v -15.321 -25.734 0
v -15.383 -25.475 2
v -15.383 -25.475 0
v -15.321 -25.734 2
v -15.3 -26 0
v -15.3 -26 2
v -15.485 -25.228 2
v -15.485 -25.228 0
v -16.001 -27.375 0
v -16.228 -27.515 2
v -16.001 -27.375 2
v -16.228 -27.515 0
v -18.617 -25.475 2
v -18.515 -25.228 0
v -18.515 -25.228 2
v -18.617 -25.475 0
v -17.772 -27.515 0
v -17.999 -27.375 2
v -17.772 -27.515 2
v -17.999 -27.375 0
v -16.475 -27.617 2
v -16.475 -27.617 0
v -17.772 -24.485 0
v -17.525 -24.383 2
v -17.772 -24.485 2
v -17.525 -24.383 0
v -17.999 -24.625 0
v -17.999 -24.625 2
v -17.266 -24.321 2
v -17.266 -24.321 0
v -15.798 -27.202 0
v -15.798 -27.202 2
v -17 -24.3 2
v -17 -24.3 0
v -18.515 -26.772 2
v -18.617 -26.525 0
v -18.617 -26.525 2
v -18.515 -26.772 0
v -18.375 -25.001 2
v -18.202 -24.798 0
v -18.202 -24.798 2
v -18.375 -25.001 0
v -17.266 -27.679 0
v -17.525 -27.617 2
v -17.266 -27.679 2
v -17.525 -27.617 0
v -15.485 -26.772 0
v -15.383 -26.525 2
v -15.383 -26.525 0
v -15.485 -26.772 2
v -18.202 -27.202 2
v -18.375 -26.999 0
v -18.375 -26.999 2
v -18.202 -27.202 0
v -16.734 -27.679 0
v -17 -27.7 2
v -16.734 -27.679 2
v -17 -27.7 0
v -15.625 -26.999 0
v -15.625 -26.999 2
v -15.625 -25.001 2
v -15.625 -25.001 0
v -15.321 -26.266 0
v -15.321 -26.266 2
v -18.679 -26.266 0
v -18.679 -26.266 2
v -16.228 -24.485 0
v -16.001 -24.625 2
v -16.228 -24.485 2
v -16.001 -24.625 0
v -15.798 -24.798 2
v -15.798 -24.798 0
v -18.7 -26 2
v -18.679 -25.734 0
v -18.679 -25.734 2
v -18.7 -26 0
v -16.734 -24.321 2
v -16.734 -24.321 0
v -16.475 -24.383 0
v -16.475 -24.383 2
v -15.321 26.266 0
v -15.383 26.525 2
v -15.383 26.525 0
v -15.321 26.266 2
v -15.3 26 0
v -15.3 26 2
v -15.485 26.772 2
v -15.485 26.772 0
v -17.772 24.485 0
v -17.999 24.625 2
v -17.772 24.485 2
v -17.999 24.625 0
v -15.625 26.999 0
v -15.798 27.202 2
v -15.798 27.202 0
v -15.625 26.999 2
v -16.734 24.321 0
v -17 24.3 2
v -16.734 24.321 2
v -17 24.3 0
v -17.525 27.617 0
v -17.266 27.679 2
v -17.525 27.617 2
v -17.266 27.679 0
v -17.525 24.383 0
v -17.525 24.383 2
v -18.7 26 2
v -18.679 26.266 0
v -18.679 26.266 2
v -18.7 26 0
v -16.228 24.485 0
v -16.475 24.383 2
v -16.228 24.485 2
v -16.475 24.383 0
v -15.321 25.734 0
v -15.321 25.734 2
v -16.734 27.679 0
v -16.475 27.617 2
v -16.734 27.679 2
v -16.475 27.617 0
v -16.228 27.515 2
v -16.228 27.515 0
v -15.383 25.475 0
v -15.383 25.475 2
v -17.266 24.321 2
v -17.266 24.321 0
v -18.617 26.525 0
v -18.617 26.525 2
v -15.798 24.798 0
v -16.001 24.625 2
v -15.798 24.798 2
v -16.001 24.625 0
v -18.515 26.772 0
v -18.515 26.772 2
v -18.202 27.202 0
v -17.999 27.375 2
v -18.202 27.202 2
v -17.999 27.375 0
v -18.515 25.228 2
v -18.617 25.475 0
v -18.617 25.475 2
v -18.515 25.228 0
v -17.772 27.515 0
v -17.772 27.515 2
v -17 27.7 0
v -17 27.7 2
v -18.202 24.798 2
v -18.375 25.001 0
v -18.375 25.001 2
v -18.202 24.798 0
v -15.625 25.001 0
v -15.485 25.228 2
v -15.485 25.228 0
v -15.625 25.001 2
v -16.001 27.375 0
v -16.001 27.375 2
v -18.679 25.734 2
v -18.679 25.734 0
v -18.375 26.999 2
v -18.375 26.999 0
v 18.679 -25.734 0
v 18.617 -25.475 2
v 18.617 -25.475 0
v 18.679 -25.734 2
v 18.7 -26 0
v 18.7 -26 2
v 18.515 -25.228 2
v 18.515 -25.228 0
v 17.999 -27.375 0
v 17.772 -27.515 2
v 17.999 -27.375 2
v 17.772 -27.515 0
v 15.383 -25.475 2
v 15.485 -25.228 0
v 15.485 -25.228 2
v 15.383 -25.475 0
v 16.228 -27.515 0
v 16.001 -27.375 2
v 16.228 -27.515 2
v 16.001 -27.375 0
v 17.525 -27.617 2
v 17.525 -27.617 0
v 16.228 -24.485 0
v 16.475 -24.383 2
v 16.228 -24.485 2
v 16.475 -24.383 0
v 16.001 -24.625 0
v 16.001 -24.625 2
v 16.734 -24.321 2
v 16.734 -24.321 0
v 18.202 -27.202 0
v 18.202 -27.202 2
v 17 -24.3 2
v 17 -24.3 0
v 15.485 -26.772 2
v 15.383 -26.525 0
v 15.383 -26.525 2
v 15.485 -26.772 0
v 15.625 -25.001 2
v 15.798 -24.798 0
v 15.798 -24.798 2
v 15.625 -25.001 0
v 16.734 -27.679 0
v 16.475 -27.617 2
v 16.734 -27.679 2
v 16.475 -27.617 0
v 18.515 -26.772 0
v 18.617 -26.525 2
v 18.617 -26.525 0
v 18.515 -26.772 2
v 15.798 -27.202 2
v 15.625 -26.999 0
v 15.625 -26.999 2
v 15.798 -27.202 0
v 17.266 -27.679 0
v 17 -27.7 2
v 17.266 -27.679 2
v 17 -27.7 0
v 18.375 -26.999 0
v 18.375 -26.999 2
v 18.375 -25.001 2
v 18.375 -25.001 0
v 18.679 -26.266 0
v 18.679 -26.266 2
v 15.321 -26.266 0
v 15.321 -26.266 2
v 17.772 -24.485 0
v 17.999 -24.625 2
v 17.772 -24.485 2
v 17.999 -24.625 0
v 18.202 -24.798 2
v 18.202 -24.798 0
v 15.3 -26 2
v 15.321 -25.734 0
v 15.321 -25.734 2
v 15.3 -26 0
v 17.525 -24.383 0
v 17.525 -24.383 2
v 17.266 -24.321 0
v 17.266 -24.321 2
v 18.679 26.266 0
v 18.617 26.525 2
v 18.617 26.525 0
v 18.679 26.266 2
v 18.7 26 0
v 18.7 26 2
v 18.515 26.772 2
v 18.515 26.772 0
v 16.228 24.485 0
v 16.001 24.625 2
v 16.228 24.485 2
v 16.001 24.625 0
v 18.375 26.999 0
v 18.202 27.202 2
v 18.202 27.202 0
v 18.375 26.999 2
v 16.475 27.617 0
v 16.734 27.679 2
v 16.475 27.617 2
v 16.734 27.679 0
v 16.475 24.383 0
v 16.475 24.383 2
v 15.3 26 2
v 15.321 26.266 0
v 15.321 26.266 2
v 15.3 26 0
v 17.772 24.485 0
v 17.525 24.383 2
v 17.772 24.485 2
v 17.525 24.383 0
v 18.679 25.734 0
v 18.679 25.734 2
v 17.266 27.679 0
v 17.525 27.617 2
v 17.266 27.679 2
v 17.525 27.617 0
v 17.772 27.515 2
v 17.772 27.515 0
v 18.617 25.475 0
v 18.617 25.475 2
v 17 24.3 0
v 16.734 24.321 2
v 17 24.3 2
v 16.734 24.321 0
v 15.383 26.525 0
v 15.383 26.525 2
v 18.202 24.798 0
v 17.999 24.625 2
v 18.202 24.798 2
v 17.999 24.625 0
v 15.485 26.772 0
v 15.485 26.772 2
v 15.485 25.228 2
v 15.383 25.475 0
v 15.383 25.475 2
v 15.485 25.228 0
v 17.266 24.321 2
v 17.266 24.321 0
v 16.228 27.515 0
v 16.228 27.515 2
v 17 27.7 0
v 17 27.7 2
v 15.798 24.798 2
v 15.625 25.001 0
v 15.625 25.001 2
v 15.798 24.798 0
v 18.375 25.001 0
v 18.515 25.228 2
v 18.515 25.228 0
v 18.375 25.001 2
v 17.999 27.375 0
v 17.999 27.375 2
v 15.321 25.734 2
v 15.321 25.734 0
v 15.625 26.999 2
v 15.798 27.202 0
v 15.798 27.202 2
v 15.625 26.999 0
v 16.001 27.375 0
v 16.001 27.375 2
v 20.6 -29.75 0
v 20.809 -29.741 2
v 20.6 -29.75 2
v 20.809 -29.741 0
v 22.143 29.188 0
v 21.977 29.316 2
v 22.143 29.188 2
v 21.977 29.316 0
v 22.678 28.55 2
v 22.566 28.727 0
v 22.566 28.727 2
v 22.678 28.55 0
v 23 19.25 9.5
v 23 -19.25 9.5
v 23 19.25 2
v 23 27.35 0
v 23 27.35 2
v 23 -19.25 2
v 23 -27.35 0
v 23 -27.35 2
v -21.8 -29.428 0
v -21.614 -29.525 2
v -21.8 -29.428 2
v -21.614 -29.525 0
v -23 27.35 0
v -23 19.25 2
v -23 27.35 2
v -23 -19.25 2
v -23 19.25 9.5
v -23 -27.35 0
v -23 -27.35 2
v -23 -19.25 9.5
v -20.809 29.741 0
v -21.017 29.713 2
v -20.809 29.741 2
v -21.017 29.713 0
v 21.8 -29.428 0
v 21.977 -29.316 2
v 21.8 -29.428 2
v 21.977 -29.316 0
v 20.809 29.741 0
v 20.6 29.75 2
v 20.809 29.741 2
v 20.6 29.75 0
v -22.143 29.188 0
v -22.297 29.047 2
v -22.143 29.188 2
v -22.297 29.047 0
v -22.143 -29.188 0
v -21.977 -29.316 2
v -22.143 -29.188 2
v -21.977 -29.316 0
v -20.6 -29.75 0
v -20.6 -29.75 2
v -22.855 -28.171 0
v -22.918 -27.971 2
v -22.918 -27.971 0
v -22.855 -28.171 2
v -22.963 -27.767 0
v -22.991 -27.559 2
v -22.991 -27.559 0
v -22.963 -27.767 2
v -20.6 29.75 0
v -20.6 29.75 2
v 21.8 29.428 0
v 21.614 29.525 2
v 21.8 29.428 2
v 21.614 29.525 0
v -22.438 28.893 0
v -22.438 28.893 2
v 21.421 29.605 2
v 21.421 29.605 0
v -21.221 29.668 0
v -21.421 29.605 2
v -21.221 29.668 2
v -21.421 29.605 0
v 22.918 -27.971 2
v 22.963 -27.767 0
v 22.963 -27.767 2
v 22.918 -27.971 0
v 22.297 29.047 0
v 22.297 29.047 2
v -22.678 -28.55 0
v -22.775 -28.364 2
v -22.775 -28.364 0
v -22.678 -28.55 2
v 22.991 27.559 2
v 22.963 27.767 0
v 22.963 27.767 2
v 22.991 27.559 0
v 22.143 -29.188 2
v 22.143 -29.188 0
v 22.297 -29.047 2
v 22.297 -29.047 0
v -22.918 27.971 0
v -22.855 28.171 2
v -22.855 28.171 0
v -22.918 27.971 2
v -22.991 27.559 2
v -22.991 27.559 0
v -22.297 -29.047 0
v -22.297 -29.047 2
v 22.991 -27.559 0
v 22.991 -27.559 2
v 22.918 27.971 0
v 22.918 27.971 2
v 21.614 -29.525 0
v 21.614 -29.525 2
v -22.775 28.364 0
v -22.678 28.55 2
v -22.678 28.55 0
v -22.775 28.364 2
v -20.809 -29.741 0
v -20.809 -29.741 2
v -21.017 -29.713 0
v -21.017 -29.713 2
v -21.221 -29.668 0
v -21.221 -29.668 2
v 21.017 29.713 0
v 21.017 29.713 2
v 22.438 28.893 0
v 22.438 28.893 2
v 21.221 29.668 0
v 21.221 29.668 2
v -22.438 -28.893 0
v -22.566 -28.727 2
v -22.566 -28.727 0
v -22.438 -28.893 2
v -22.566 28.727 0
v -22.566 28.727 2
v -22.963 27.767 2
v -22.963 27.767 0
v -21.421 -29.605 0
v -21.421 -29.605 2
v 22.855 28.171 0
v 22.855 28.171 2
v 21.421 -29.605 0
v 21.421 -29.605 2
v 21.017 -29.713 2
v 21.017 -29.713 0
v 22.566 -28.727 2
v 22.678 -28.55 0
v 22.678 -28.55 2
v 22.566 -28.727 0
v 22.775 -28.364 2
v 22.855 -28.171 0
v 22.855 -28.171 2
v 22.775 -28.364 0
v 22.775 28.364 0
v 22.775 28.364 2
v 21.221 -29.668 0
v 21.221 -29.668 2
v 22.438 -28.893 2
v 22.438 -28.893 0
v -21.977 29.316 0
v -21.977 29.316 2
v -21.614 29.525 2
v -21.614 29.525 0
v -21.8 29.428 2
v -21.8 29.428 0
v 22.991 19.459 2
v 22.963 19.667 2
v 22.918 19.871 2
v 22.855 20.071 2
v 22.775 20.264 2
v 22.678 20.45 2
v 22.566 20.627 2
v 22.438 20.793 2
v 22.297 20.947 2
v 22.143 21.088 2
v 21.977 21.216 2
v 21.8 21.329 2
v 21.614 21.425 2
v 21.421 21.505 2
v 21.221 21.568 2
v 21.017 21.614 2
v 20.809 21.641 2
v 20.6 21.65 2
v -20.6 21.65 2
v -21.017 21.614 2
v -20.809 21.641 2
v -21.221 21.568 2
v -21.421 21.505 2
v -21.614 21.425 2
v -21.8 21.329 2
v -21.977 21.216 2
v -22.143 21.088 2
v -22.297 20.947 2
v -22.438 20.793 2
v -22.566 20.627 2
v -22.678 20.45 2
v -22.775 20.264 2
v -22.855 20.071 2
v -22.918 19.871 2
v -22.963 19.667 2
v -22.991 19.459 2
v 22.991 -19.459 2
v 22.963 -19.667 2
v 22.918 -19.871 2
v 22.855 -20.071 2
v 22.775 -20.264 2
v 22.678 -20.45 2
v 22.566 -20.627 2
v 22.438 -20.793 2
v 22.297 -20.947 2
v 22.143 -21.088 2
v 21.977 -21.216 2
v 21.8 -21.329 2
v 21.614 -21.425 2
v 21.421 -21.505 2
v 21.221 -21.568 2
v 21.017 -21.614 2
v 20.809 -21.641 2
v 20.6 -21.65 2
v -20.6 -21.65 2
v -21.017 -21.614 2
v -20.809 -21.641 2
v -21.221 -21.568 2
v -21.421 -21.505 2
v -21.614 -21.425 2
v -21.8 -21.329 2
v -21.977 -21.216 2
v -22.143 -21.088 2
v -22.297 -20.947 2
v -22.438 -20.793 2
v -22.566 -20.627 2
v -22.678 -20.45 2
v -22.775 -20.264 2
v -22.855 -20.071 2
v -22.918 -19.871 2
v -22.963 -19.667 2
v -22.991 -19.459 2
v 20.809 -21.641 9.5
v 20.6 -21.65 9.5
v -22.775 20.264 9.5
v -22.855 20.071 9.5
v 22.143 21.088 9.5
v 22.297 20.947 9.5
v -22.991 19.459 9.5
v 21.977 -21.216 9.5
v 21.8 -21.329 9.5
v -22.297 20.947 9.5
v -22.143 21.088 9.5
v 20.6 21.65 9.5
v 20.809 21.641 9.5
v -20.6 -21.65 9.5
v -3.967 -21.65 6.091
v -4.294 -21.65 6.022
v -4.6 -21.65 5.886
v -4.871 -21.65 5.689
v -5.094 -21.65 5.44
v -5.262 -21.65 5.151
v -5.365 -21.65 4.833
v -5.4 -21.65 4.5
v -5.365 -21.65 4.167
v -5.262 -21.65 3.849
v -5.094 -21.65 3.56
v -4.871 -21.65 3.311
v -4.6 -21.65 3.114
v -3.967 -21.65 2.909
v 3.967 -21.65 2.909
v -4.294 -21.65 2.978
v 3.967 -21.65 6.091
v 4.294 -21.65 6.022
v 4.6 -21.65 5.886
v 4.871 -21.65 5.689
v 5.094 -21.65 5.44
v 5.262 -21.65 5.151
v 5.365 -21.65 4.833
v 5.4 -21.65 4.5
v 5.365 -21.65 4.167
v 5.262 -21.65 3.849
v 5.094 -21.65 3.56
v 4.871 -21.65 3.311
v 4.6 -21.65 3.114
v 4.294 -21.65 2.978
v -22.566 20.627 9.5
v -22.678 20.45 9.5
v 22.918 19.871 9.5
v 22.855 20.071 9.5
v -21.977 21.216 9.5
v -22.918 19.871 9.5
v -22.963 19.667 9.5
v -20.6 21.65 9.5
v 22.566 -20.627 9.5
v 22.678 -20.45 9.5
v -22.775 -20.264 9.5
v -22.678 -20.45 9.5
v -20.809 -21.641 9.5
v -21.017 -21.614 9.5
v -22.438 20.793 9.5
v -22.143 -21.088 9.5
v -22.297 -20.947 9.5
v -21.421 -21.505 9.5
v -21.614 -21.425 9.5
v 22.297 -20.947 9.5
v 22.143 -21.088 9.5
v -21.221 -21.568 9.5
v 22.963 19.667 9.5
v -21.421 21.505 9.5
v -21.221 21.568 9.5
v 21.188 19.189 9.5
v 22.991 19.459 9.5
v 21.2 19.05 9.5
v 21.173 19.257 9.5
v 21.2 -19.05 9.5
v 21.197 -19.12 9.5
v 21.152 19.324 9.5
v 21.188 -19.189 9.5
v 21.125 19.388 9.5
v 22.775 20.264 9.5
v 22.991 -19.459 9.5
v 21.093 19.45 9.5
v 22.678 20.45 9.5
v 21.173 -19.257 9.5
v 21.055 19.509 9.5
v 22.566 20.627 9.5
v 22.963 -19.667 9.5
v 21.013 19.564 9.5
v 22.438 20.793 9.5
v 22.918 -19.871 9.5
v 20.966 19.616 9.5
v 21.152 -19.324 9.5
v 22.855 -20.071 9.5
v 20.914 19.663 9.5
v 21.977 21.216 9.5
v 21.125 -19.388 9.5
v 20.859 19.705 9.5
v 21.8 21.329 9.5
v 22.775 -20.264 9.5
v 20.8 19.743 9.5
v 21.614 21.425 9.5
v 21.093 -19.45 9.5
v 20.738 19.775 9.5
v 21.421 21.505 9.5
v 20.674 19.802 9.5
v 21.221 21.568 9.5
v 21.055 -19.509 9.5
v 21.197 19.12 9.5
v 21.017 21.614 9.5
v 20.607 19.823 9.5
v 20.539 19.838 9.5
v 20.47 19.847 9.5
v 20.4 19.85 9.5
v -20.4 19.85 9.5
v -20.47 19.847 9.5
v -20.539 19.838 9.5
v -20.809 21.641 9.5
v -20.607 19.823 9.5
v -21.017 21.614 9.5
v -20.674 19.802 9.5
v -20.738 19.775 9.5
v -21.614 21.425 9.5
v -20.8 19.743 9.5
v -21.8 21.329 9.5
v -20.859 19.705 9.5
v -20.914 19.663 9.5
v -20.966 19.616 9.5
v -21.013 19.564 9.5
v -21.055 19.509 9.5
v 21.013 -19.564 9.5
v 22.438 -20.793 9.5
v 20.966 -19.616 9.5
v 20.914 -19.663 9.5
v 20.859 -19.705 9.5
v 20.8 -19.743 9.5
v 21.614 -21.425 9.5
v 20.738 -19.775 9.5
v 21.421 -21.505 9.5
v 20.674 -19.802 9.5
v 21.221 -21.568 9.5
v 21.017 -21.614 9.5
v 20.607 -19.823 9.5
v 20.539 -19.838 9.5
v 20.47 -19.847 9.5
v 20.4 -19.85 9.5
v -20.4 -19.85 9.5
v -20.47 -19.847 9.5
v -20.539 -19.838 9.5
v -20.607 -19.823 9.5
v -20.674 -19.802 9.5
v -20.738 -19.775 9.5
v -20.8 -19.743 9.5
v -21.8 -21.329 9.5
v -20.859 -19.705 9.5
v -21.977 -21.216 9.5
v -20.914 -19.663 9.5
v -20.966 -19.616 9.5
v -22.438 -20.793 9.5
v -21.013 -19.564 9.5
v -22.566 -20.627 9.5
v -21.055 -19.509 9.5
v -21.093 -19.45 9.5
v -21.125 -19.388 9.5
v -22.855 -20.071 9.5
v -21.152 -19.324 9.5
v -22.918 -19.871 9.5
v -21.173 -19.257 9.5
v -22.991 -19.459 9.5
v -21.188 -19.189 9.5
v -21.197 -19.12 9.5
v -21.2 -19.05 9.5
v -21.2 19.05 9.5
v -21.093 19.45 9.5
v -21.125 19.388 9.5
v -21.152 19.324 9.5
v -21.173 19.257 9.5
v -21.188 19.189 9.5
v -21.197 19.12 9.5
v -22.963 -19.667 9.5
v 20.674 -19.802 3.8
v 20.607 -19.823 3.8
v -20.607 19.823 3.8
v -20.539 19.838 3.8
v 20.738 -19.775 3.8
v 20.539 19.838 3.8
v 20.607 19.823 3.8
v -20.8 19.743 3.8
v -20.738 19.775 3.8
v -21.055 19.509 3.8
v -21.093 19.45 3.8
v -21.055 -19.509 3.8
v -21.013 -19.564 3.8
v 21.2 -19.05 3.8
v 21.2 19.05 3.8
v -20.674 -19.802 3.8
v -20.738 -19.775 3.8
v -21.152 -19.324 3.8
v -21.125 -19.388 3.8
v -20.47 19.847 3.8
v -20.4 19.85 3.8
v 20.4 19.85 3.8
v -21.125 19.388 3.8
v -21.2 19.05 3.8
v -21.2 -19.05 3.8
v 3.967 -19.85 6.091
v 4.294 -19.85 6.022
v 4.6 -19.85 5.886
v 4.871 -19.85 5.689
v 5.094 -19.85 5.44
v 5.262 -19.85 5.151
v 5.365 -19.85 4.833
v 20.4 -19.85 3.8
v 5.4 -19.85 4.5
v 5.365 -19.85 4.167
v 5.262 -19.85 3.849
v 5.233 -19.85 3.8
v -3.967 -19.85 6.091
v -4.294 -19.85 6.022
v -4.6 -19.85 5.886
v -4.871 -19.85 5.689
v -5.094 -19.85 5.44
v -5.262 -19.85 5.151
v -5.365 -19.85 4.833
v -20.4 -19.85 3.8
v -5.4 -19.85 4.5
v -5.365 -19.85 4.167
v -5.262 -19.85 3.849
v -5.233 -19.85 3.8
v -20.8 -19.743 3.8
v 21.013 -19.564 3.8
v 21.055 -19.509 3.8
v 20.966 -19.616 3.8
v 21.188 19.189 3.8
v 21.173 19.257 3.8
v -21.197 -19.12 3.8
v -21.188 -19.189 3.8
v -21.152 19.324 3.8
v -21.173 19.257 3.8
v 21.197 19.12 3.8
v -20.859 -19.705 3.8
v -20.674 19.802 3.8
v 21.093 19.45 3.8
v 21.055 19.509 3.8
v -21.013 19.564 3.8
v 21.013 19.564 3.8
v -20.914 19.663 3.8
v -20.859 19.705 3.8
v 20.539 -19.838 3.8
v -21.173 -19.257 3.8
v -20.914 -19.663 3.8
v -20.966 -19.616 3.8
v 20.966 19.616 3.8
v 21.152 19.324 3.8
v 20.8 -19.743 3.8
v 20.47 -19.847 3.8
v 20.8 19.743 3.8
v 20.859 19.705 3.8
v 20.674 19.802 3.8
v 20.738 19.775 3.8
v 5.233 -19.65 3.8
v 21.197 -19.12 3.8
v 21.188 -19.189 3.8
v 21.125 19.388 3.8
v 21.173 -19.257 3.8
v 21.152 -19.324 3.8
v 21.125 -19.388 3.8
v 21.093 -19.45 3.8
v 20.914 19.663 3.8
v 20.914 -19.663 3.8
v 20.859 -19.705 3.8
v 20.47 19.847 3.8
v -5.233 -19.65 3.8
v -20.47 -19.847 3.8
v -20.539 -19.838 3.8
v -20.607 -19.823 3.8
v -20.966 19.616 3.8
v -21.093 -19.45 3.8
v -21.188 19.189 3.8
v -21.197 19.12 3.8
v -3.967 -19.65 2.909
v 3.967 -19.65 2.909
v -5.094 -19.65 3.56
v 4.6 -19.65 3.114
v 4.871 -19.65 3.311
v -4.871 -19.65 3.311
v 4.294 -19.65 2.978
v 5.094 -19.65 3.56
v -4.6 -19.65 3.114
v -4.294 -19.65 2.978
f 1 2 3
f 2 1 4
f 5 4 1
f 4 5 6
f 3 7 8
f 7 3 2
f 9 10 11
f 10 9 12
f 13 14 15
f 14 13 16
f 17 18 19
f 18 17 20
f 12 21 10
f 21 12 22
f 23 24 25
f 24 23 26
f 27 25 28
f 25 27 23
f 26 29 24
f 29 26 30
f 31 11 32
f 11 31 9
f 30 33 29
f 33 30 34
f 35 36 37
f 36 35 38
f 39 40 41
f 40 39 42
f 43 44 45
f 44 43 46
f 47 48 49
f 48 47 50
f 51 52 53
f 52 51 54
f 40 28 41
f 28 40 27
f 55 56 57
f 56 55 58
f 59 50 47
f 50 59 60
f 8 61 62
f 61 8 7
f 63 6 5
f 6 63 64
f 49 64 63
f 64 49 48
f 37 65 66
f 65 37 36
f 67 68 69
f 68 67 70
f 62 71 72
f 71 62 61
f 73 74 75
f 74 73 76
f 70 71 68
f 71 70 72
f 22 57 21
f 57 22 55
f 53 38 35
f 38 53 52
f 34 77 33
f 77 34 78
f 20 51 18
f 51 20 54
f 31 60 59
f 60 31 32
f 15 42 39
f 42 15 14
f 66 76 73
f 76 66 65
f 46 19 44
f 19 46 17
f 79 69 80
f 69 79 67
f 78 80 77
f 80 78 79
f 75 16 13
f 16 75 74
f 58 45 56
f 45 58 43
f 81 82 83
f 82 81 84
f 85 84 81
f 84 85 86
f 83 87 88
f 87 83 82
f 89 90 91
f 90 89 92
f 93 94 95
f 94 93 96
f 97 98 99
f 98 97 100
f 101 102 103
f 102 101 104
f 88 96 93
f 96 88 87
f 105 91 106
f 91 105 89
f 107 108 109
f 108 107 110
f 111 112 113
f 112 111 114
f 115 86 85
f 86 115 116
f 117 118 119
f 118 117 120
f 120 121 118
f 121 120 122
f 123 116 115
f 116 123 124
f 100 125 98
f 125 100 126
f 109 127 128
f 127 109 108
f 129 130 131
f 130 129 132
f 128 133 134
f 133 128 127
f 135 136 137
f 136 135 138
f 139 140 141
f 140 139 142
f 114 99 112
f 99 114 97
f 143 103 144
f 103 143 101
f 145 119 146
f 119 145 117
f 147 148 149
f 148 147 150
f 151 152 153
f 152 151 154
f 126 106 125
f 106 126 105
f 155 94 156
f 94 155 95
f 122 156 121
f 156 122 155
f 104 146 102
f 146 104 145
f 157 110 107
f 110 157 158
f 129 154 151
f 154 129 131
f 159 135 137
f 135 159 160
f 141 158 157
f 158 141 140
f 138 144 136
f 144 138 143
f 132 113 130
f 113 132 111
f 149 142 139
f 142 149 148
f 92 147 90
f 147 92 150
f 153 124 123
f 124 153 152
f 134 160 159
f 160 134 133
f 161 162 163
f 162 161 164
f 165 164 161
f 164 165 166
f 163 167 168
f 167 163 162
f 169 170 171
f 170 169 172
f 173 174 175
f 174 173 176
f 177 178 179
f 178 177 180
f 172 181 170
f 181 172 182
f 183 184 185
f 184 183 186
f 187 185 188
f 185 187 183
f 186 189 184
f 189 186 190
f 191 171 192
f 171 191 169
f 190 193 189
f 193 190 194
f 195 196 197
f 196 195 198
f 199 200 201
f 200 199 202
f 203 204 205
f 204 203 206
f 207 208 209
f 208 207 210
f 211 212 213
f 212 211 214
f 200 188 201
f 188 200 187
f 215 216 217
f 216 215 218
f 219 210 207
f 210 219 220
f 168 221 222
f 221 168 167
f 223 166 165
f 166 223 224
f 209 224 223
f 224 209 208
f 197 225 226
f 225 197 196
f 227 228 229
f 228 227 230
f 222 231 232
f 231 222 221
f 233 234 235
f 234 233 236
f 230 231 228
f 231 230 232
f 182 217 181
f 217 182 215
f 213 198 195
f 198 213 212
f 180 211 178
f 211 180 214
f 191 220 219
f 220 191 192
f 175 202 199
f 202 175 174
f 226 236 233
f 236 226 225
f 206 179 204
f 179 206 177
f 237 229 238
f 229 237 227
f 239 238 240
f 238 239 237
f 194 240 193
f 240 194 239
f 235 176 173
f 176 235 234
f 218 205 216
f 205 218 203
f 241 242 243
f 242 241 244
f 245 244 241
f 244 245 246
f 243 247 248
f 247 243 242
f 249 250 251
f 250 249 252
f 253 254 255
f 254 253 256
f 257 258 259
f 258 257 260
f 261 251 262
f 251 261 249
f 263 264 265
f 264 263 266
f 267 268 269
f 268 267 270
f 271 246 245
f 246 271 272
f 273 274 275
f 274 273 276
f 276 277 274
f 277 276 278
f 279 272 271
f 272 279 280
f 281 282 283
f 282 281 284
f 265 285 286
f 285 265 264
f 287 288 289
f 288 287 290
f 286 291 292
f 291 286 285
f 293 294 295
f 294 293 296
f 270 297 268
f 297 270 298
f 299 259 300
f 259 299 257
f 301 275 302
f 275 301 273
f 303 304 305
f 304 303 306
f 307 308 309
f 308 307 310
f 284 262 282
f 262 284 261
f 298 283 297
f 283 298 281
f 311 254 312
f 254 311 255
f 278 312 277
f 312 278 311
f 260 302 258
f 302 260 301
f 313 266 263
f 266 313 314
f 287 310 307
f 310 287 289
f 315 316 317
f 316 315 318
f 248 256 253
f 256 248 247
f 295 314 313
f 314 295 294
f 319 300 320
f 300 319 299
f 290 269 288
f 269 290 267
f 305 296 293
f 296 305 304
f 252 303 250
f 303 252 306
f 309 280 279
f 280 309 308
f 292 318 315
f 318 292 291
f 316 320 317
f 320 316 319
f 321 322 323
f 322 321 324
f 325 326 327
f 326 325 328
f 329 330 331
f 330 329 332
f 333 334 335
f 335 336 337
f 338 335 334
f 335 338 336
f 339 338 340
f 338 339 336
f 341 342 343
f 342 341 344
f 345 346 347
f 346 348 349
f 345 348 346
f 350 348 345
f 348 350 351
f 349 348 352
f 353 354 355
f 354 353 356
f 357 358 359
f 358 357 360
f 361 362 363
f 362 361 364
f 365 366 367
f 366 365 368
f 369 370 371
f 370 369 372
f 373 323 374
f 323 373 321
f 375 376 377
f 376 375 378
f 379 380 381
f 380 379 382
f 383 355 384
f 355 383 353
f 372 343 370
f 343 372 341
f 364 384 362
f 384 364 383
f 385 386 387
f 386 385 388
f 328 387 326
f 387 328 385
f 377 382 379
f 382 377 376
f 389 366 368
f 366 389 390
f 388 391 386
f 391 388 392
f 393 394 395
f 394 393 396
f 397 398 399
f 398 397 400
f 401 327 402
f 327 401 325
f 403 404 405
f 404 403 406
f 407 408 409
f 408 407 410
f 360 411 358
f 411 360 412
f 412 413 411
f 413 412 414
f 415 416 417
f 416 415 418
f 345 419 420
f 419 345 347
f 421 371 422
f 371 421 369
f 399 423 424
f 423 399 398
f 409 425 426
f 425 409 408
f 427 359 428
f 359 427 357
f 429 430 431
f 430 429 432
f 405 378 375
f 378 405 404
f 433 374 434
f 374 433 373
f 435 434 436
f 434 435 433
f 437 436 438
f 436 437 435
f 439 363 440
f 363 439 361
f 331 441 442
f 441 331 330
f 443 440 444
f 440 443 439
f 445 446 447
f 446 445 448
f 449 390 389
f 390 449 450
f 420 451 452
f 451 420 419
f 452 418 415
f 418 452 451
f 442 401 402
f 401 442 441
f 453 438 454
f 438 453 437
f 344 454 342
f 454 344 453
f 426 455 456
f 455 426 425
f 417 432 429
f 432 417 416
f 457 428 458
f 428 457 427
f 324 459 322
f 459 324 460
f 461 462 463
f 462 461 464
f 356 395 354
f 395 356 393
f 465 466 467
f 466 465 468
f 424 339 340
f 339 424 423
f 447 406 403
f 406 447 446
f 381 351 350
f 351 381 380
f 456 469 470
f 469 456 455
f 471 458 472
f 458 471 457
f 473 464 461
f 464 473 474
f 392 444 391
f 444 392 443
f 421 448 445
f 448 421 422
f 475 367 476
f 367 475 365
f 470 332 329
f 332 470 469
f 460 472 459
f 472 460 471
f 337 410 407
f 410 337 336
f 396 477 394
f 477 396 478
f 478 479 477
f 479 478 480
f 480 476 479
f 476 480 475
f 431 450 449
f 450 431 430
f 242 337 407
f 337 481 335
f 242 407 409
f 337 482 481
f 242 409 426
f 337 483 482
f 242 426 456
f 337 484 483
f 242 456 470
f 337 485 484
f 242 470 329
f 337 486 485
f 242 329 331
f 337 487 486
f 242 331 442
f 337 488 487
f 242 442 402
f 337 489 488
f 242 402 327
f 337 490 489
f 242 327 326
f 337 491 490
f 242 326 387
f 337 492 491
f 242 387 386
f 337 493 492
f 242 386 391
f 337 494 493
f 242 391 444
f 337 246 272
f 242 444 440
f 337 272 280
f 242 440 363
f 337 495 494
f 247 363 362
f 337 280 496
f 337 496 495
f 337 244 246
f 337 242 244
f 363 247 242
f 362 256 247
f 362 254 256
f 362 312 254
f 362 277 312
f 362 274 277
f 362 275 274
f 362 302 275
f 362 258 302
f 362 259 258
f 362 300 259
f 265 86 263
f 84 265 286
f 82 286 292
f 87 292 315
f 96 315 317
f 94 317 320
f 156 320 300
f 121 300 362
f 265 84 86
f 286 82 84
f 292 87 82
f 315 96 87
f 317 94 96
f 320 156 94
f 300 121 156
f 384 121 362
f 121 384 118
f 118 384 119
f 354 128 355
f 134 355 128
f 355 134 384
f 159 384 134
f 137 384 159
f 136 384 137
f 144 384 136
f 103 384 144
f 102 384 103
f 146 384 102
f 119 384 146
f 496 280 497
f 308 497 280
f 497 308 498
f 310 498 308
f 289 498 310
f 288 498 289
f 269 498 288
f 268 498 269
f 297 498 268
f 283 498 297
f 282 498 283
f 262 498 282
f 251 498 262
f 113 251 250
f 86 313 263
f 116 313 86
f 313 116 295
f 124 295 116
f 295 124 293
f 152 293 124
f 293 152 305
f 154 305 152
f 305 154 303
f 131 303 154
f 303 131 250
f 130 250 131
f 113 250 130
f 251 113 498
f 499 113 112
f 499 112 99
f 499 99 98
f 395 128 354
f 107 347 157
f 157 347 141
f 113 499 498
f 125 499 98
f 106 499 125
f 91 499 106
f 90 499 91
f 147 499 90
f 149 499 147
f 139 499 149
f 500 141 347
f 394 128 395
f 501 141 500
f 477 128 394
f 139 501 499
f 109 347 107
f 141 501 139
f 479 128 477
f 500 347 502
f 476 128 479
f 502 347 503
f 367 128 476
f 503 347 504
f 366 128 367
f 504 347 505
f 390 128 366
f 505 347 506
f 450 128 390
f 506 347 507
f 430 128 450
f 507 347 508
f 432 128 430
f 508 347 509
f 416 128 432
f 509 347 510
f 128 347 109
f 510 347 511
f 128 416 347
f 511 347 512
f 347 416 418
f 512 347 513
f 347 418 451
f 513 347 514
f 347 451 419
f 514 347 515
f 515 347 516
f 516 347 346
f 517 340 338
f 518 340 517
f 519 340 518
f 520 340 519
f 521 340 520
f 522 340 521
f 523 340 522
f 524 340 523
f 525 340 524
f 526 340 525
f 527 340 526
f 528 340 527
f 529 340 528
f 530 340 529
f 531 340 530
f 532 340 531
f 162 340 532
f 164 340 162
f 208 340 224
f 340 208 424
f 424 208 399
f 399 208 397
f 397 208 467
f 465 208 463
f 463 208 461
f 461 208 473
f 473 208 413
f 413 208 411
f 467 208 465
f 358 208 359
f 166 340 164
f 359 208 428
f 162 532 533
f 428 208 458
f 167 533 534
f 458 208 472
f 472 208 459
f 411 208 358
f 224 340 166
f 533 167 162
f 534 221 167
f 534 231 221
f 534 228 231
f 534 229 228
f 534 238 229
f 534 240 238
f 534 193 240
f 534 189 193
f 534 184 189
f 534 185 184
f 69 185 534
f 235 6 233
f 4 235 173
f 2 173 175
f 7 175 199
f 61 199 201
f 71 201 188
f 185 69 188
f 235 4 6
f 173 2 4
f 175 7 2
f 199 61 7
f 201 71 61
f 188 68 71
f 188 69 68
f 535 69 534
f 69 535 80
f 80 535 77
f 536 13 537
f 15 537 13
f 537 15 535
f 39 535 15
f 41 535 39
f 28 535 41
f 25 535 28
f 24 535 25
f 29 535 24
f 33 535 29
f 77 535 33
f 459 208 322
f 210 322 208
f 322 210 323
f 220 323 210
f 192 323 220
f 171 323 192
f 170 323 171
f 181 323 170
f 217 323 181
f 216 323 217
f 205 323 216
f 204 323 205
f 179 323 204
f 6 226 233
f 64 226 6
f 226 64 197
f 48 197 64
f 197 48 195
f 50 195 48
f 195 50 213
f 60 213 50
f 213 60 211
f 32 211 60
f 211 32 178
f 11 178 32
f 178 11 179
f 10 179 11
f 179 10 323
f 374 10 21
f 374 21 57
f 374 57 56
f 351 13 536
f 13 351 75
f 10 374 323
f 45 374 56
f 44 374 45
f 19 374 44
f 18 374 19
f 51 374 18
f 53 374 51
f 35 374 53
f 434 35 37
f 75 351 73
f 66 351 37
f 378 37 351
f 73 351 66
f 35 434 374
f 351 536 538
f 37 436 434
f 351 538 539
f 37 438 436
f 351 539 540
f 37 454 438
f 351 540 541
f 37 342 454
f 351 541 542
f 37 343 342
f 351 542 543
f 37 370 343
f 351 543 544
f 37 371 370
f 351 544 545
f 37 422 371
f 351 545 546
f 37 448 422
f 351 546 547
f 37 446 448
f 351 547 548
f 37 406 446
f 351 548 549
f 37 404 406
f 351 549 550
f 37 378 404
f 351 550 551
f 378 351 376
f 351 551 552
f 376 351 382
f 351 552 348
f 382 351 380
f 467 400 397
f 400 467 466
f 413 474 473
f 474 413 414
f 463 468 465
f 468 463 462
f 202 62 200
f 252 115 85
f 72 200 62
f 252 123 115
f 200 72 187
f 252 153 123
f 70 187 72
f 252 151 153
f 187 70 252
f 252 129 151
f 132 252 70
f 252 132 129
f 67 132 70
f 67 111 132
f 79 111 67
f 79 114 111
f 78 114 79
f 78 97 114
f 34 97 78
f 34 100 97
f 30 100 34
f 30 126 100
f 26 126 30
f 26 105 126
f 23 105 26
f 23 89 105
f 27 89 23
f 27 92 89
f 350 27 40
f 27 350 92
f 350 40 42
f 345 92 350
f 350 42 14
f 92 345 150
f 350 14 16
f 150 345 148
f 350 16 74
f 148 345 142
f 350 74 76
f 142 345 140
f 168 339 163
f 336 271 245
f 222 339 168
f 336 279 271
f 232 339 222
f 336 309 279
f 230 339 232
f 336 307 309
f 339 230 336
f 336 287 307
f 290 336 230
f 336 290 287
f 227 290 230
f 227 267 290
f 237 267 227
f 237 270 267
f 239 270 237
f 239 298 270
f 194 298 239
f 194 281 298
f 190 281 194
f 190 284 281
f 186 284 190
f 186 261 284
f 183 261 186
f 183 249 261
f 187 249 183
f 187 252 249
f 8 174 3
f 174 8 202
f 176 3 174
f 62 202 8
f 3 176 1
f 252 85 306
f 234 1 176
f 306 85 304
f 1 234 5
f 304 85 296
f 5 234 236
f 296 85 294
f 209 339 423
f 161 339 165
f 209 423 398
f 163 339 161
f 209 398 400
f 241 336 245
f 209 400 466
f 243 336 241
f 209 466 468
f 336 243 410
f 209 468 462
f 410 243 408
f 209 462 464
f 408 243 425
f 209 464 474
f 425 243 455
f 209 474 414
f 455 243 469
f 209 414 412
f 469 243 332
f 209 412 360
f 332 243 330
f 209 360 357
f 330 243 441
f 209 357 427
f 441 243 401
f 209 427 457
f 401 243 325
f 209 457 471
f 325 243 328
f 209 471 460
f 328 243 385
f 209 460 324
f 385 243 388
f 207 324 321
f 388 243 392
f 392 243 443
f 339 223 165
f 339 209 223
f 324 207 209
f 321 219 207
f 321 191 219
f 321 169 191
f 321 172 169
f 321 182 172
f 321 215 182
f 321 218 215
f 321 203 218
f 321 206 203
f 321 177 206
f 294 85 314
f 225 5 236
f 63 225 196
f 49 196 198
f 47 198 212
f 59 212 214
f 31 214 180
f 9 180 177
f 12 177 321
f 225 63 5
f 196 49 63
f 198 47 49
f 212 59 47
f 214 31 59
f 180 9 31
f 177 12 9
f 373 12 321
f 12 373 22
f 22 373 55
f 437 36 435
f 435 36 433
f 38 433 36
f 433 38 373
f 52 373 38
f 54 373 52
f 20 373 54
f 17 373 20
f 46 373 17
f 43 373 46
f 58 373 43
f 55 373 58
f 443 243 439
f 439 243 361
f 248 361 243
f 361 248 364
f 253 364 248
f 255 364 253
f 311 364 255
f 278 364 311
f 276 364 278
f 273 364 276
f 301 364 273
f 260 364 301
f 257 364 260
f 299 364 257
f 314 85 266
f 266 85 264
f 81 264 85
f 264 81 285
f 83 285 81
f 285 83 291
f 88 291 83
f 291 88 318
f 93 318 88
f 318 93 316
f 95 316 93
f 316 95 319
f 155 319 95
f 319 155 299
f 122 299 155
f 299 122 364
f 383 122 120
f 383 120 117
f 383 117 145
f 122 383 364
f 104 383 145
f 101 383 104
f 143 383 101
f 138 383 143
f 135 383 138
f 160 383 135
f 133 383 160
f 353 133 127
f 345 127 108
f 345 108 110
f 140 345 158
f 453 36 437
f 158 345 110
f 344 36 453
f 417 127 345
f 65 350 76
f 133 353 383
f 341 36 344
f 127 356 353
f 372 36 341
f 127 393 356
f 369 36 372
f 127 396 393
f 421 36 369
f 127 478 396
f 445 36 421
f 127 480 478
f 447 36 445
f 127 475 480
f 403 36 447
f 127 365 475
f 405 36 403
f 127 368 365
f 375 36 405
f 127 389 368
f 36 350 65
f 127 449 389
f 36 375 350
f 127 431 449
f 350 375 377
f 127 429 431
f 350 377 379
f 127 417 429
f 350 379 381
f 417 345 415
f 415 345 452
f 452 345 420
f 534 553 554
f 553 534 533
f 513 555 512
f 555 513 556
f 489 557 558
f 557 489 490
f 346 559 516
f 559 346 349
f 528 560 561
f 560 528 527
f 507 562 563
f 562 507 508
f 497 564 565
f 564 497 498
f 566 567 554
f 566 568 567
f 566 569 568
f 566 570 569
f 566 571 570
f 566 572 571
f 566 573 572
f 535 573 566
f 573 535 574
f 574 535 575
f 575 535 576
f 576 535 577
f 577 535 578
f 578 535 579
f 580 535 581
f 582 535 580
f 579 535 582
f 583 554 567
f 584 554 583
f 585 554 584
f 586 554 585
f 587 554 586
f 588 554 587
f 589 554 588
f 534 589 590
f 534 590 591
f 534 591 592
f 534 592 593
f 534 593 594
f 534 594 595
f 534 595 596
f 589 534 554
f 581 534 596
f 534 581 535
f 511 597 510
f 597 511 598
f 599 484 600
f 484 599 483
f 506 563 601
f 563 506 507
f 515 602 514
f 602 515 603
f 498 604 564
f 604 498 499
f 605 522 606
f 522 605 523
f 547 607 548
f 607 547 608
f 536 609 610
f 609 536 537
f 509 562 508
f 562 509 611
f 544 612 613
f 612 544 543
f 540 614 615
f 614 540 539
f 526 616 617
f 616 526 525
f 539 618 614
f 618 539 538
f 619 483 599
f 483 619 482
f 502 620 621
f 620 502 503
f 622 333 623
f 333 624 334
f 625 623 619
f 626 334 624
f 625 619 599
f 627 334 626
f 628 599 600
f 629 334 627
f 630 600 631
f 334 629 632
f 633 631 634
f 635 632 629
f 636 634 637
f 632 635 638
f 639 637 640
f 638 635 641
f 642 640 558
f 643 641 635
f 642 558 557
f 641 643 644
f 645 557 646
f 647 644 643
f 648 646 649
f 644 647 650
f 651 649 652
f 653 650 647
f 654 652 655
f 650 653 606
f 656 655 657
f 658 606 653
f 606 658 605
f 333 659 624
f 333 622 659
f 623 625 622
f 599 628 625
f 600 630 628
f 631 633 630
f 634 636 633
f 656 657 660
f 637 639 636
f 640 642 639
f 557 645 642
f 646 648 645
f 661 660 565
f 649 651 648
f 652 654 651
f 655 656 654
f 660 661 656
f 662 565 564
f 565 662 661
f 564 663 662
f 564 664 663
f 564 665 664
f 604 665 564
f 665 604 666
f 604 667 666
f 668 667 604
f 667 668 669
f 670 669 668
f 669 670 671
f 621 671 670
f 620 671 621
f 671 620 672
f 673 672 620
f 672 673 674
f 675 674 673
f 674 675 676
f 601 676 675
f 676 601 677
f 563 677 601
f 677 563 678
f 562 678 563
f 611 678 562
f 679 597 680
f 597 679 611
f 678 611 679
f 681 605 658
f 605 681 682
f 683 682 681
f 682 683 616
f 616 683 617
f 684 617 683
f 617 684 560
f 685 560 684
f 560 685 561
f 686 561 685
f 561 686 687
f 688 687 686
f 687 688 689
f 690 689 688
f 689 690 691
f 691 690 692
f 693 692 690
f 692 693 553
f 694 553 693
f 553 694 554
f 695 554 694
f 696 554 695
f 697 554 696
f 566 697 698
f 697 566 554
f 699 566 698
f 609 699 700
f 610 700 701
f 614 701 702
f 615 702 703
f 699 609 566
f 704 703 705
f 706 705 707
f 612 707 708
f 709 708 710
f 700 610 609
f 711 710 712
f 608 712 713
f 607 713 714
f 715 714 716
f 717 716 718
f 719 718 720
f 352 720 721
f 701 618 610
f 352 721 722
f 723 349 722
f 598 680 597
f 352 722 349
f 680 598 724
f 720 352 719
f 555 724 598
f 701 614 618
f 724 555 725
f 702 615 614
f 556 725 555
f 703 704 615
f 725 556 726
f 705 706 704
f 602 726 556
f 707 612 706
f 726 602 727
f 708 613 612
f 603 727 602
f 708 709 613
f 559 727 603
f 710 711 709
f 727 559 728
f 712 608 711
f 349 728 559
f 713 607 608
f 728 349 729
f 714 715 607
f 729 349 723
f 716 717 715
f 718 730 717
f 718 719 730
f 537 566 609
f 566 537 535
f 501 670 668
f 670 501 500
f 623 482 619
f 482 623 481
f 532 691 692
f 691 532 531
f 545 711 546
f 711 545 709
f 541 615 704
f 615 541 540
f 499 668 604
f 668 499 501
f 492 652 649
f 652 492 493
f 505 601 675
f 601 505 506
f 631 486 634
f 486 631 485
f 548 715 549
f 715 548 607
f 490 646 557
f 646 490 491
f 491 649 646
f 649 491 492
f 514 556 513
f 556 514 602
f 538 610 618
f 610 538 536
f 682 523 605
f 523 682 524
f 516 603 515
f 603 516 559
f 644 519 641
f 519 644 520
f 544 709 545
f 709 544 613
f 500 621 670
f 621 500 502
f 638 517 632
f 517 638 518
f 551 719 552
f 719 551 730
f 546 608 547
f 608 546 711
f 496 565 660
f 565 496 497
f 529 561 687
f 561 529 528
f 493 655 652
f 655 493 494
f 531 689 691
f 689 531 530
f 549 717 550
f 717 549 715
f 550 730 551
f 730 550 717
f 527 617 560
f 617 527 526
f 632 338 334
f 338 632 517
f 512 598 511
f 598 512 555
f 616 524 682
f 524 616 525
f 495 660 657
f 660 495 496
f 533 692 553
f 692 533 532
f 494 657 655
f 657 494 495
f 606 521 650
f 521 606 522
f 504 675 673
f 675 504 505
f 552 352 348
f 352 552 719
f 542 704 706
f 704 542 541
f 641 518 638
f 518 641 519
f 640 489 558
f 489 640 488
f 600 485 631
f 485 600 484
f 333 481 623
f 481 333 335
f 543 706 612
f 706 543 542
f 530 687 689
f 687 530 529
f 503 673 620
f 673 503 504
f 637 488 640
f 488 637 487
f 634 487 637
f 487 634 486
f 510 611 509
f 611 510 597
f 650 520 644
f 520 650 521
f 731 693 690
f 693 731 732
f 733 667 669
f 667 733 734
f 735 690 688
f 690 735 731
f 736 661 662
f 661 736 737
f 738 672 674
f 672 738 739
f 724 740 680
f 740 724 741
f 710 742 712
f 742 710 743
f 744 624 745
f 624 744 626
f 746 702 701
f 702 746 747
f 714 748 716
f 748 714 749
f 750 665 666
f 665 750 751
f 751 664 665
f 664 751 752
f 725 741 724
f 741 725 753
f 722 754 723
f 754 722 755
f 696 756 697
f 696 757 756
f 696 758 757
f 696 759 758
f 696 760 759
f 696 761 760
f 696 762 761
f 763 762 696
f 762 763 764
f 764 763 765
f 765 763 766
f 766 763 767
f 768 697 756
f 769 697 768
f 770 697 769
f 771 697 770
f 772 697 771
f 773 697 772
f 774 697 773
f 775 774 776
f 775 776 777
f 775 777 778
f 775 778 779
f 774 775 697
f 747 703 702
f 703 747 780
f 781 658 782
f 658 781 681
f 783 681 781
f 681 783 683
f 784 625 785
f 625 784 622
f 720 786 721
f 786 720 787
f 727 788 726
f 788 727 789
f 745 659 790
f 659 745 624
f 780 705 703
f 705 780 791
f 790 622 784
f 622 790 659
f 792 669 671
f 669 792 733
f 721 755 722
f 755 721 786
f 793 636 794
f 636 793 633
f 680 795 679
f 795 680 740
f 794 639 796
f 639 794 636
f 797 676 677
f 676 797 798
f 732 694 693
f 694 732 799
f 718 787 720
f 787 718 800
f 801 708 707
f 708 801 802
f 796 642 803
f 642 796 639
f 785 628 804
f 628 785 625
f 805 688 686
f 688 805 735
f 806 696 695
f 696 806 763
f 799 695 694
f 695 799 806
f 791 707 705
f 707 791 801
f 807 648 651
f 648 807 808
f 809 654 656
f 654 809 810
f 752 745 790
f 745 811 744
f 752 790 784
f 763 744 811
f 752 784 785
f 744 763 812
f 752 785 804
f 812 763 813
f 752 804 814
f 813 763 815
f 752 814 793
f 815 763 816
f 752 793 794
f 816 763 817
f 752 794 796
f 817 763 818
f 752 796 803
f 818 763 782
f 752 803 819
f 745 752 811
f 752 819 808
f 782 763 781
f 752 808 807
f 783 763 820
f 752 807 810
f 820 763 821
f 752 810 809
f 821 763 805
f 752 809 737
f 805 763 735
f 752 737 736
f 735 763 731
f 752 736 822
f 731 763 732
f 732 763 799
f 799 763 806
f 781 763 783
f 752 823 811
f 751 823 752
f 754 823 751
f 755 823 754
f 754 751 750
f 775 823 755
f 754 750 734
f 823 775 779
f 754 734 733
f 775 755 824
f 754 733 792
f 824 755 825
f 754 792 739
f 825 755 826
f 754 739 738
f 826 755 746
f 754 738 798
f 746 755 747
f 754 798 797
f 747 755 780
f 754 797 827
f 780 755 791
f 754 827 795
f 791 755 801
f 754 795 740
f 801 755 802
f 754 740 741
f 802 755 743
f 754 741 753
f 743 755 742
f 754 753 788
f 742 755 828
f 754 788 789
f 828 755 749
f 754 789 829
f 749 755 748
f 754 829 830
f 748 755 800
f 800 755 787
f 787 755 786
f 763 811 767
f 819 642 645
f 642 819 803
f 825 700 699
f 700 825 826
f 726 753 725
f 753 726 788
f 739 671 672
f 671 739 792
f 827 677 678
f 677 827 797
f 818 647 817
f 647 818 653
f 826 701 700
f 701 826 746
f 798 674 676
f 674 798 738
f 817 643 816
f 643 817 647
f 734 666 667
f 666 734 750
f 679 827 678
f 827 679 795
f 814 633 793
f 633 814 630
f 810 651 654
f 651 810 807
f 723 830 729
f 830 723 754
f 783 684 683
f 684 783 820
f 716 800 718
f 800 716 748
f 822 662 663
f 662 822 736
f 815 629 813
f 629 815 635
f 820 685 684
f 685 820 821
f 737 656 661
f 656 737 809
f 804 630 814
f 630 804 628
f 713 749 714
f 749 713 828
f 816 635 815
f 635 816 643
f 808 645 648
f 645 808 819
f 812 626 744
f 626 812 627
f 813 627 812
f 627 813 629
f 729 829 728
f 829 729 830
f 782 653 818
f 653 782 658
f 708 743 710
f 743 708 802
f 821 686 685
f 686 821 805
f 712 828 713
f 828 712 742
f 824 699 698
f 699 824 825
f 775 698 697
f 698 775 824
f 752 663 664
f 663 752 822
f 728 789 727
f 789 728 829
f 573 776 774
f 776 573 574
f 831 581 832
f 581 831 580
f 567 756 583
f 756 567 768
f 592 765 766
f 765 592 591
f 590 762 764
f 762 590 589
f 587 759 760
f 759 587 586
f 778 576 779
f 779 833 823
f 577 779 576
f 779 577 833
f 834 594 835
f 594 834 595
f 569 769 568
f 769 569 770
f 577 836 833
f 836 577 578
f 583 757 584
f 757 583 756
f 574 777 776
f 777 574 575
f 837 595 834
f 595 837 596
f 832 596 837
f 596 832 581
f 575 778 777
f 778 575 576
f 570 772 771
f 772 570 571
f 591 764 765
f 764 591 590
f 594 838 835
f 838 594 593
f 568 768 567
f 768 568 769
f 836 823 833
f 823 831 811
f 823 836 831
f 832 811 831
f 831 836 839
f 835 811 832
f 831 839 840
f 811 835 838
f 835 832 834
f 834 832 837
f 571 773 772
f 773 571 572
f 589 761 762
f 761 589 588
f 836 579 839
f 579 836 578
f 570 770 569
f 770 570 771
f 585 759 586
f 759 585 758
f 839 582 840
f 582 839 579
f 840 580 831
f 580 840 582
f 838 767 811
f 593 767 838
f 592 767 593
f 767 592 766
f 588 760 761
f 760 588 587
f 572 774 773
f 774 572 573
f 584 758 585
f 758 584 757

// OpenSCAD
// file: _h30-enclosure-model.scad
/*
  WHEELTEC H30 metal enclosure family geometry.
  Overall envelope without damper heads: 46.0 x 59.5 x 11.7 mm.
  Origin: center of mounting base, bottom face.
*/

include <_h30-pcb-model.scad>

enclosure_width = 46.0;
enclosure_length = 59.5;
enclosure_height = 11.7;
body_length = 43.3;
base_thickness = 2.0;
cover_height = 2.2;
corner_radius = 2.4;
mount_hole_diameter = 3.4;
mount_hole_x = 17.0;
mount_hole_y = 26.0;
wall_thickness = 1.8;

module h30_rounded_rect(size=[10, 10], radius=1) {
    offset(r=radius)
        square([size[0]-2*radius, size[1]-2*radius], center=true);
}

module h30_rounded_plate(size=[10, 10], height=1, radius=1) {
    linear_extrude(height=height)
        h30_rounded_rect(size, radius);
}

module h30_mounting_base() {
    difference() {
        h30_rounded_plate(
            [enclosure_width, enclosure_length],
            base_thickness,
            corner_radius
        );
        for (x=[-mount_hole_x, mount_hole_x], y=[-mount_hole_y, mount_hole_y])
            translate([x, y, -0.1])
                cylinder(d=mount_hole_diameter, h=base_thickness+0.2, $fn=40);
    }
}

module h30_main_housing() {
    lower_height = enclosure_height-cover_height-base_thickness;
    union() {
        h30_mounting_base();
        translate([0, 0, base_thickness])
            difference() {
                h30_rounded_plate(
                    [enclosure_width, body_length],
                    lower_height,
                    corner_radius
                );
                translate([0, 0, wall_thickness])
                    h30_rounded_plate(
                        [enclosure_width-2*wall_thickness,
                         body_length-2*wall_thickness],
                        lower_height,
                        max(0.8, corner_radius-wall_thickness)
                    );
                // USB-C opening centered on the front long wall.
                translate([0, -body_length/2-0.2, 2.5])
                    rotate([-90, 0, 0])
                        hull() {
                            translate([-3.8, 0, 0]) cylinder(d=3.2, h=wall_thickness+0.4, $fn=30);
                            translate([ 3.8, 0, 0]) cylinder(d=3.2, h=wall_thickness+0.4, $fn=30);
                        }
            }
    }
}

module h30_cover() {
    z0 = enclosure_height-cover_height;
    // The original enclosure has a smaller flat top and sloped shoulders.
    translate([0, 0, z0])
        hull() {
            h30_rounded_plate([enclosure_width, body_length], 0.35, corner_radius);
            translate([0, 0, cover_height-0.35])
                h30_rounded_plate([40.0, 36.0], 0.35, 1.8);
        }
}

module h30_cover_screw() {
    union() {
        cylinder(d=4.8, h=1.0, $fn=36);
        translate([0, 0, 0.8]) cylinder(d=2.8, h=5.4, $fn=30);
    }
}

module h30_four_cover_screws() {
    // Four screws enter from the underside and do not appear on the top cover.
    for (x=[-18.0, 18.0], y=[-16.0, 16.0])
        translate([x, y, 0.25]) h30_cover_screw();
}

module h30_plastic_damper_screw() {
    // Simplified nylon isolation screw: lower head, shank, upper retaining head.
    union() {
        cylinder(d=6.4, h=1.2, $fn=40);
        translate([0, 0, 0.8]) cylinder(d=3.0, h=3.0, $fn=32);
        translate([0, 0, 2.9]) cylinder(d1=5.8, d2=4.8, h=1.0, $fn=40);
    }
}

module h30_four_plastic_dampers() {
    for (x=[-mount_hole_x, mount_hole_x], y=[-mount_hole_y, mount_hole_y])
        translate([x, y, -0.65]) h30_plastic_damper_screw();
}

module h30_top_markings() {
    translate([0, 0, enclosure_height+0.01])
        linear_extrude(height=0.12) {
            translate([0, 10.0])
                text("WHEELTEC", size=3.0, halign="center", valign="center",
                     font="Liberation Sans:style=Bold");
            translate([0, -9.0])
                text("H30", size=4.0, halign="center", valign="center",
                     font="Liberation Sans:style=Regular");
            circle(d=1.2, $fn=24);
            for (angle=[0, 120, 240])
                rotate(angle)
                    polygon(points=[[0, 0], [7.0, -0.45], [7.0, 0.45]]);
        }
}

module h30_internal_pcb() {
    translate([0, 0, 2.38]) wheeltec_h30_pcb();
}
// main file
/* WHEELTEC H30 main metal housing component. */
include <_h30-enclosure-model.scad>
color("#D7DBDE") h30_main_housing();
